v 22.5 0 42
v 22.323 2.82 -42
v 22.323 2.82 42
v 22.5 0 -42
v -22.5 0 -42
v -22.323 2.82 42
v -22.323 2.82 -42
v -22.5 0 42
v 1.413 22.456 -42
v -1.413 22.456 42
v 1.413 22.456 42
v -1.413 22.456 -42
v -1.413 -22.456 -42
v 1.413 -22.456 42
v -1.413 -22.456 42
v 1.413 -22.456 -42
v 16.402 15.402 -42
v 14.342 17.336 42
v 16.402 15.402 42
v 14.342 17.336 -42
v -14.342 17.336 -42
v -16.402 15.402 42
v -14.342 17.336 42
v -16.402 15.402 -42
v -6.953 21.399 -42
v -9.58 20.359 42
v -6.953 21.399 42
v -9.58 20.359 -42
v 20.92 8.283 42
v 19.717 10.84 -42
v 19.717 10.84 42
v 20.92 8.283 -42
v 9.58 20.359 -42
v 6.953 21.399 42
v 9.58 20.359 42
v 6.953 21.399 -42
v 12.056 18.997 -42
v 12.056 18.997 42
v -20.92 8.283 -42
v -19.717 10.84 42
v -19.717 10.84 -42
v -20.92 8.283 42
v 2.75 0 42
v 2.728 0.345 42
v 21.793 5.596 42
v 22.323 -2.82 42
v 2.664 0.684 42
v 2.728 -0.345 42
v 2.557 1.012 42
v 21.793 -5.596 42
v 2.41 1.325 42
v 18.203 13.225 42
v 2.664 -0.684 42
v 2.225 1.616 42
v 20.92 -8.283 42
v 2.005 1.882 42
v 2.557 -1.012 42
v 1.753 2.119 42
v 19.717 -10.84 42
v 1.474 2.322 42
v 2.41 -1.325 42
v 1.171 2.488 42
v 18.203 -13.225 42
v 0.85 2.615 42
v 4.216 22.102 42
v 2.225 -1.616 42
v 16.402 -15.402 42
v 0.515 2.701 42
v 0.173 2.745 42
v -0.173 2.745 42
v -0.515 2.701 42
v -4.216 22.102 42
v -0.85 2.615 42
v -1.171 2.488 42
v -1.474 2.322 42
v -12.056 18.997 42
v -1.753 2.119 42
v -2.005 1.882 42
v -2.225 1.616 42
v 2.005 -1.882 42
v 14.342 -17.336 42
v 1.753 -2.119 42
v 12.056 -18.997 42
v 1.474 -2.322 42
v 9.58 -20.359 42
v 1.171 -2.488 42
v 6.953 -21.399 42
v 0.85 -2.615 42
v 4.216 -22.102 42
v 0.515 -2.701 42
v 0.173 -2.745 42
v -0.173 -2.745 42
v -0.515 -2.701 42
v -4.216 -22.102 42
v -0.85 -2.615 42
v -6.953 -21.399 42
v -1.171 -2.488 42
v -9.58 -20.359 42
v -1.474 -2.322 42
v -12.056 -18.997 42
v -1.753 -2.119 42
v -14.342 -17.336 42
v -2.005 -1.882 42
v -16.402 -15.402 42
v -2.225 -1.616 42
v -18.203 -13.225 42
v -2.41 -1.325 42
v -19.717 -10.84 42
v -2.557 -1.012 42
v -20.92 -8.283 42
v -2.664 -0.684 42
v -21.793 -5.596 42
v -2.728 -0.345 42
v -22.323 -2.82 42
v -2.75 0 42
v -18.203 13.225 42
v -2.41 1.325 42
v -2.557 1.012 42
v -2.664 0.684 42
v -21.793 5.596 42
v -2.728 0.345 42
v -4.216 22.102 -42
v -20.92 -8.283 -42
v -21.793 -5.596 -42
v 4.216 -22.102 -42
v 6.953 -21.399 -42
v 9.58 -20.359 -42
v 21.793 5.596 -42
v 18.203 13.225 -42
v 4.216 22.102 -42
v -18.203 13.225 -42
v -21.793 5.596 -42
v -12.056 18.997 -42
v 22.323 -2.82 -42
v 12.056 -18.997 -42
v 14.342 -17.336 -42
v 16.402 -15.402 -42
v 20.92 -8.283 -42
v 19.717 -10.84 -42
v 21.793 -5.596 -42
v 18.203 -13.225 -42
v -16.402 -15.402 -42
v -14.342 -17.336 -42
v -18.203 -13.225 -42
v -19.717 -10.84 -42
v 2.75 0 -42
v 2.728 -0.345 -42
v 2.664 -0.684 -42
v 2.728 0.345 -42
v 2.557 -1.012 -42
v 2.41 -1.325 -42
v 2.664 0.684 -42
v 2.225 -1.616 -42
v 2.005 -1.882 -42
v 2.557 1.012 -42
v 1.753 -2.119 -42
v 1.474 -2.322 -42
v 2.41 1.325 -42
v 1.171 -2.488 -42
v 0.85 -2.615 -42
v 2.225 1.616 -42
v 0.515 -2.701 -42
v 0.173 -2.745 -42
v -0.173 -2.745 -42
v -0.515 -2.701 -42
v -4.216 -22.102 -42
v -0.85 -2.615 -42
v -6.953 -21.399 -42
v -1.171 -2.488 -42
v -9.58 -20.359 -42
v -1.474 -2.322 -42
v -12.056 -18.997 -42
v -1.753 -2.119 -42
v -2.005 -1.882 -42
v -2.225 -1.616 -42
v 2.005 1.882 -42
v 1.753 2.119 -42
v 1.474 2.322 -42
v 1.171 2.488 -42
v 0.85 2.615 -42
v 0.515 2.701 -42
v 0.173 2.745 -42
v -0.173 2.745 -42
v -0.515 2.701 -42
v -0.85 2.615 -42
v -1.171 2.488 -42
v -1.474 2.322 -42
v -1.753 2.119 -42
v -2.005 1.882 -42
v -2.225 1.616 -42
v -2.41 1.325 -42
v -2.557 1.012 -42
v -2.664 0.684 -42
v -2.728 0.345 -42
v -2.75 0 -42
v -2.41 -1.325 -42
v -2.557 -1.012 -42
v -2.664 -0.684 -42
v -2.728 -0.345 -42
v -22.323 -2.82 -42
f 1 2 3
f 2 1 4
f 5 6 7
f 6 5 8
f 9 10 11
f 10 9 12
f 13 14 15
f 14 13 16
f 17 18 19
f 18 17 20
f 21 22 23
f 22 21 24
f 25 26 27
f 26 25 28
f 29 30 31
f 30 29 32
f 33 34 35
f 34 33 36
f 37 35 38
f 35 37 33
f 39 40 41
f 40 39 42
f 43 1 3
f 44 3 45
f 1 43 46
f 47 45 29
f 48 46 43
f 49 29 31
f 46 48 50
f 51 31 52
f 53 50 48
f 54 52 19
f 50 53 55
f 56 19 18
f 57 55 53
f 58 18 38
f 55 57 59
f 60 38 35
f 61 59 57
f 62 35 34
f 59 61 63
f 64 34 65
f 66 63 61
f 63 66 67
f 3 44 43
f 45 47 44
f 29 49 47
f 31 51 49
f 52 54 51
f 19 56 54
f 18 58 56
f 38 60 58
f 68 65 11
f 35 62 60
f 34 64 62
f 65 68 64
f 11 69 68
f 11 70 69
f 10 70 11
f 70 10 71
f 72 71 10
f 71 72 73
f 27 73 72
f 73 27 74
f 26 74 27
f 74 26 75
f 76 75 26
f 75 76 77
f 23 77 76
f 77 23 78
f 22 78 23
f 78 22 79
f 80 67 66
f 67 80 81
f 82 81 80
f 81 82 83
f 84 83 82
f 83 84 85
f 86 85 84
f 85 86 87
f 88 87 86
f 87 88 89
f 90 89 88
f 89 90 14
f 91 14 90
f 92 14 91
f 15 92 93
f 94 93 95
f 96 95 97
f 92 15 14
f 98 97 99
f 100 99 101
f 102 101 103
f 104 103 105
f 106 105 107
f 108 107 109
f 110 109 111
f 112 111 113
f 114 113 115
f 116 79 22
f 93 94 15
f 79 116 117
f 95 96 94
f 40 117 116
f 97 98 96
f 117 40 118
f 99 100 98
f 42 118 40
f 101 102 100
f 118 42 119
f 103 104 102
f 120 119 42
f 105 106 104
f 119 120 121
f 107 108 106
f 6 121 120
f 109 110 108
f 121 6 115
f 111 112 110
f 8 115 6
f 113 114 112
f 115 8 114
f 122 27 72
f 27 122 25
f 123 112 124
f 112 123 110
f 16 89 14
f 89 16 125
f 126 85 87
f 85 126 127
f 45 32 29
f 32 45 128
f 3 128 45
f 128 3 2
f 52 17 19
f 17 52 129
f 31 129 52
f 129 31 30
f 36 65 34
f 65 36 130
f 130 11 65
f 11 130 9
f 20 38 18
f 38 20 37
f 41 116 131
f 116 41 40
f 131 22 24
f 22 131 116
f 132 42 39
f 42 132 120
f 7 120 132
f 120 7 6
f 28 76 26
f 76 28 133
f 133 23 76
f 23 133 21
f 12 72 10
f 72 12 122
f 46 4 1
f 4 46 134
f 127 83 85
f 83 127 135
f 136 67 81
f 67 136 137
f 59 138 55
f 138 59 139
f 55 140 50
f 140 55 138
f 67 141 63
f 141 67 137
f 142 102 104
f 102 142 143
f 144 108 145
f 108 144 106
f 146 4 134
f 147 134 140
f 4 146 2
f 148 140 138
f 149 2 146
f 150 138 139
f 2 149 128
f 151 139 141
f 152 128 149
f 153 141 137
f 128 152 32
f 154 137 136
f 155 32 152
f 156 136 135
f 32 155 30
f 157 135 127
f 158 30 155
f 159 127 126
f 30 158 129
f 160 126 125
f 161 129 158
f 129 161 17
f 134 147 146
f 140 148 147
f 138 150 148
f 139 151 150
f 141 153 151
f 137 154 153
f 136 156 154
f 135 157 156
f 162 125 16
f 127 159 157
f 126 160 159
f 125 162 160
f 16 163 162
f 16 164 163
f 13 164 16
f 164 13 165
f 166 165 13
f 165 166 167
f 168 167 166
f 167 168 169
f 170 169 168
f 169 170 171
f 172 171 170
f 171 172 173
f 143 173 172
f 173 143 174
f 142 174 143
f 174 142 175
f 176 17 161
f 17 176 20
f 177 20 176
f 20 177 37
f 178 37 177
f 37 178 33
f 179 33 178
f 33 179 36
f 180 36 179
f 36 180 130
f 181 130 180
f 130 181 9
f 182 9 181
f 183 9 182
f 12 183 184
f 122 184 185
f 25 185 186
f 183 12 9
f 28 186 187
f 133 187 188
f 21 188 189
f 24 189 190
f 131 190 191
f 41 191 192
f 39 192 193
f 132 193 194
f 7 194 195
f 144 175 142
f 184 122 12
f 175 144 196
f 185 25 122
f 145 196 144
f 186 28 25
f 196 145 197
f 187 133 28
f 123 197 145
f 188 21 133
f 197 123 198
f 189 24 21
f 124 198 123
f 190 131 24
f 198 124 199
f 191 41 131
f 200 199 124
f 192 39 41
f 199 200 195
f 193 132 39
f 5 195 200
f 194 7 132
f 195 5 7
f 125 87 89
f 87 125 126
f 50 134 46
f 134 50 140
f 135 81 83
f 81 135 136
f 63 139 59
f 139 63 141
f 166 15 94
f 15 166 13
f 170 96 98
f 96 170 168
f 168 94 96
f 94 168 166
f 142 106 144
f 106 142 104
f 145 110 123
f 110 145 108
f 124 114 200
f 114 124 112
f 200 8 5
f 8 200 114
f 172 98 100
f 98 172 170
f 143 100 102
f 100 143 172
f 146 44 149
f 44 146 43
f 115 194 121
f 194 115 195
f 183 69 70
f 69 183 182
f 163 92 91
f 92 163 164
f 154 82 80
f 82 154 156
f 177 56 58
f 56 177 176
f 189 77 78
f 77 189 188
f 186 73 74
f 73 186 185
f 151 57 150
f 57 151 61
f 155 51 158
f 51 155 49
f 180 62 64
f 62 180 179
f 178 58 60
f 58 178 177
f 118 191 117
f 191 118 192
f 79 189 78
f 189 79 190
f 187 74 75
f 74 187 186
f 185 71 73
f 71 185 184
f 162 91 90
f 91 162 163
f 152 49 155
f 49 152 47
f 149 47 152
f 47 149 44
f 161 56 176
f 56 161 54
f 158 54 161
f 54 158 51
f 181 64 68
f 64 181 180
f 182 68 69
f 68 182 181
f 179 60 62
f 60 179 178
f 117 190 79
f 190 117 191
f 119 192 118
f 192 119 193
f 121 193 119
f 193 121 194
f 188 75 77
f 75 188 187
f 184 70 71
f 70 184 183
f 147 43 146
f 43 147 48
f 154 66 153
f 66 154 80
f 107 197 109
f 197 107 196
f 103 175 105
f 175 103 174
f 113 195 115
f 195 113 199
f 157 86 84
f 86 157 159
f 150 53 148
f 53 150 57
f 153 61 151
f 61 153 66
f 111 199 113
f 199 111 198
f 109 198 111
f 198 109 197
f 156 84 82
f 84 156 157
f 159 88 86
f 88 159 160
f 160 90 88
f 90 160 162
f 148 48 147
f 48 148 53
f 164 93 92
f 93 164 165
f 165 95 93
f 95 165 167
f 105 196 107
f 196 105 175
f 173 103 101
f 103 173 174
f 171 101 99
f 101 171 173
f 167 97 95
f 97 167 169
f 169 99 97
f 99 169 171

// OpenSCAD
$fn = 50;


difference() {
	union() {
		translate(v = [0, 0, -42.0000000000]) {
			cylinder(h = 84, r = 22.5000000000);
		}
	}
	union() {
		translate(v = [0, 0, -100.0000000000]) {
			cylinder(h = 200, r = 2.7500000000);
		}
	}
}
